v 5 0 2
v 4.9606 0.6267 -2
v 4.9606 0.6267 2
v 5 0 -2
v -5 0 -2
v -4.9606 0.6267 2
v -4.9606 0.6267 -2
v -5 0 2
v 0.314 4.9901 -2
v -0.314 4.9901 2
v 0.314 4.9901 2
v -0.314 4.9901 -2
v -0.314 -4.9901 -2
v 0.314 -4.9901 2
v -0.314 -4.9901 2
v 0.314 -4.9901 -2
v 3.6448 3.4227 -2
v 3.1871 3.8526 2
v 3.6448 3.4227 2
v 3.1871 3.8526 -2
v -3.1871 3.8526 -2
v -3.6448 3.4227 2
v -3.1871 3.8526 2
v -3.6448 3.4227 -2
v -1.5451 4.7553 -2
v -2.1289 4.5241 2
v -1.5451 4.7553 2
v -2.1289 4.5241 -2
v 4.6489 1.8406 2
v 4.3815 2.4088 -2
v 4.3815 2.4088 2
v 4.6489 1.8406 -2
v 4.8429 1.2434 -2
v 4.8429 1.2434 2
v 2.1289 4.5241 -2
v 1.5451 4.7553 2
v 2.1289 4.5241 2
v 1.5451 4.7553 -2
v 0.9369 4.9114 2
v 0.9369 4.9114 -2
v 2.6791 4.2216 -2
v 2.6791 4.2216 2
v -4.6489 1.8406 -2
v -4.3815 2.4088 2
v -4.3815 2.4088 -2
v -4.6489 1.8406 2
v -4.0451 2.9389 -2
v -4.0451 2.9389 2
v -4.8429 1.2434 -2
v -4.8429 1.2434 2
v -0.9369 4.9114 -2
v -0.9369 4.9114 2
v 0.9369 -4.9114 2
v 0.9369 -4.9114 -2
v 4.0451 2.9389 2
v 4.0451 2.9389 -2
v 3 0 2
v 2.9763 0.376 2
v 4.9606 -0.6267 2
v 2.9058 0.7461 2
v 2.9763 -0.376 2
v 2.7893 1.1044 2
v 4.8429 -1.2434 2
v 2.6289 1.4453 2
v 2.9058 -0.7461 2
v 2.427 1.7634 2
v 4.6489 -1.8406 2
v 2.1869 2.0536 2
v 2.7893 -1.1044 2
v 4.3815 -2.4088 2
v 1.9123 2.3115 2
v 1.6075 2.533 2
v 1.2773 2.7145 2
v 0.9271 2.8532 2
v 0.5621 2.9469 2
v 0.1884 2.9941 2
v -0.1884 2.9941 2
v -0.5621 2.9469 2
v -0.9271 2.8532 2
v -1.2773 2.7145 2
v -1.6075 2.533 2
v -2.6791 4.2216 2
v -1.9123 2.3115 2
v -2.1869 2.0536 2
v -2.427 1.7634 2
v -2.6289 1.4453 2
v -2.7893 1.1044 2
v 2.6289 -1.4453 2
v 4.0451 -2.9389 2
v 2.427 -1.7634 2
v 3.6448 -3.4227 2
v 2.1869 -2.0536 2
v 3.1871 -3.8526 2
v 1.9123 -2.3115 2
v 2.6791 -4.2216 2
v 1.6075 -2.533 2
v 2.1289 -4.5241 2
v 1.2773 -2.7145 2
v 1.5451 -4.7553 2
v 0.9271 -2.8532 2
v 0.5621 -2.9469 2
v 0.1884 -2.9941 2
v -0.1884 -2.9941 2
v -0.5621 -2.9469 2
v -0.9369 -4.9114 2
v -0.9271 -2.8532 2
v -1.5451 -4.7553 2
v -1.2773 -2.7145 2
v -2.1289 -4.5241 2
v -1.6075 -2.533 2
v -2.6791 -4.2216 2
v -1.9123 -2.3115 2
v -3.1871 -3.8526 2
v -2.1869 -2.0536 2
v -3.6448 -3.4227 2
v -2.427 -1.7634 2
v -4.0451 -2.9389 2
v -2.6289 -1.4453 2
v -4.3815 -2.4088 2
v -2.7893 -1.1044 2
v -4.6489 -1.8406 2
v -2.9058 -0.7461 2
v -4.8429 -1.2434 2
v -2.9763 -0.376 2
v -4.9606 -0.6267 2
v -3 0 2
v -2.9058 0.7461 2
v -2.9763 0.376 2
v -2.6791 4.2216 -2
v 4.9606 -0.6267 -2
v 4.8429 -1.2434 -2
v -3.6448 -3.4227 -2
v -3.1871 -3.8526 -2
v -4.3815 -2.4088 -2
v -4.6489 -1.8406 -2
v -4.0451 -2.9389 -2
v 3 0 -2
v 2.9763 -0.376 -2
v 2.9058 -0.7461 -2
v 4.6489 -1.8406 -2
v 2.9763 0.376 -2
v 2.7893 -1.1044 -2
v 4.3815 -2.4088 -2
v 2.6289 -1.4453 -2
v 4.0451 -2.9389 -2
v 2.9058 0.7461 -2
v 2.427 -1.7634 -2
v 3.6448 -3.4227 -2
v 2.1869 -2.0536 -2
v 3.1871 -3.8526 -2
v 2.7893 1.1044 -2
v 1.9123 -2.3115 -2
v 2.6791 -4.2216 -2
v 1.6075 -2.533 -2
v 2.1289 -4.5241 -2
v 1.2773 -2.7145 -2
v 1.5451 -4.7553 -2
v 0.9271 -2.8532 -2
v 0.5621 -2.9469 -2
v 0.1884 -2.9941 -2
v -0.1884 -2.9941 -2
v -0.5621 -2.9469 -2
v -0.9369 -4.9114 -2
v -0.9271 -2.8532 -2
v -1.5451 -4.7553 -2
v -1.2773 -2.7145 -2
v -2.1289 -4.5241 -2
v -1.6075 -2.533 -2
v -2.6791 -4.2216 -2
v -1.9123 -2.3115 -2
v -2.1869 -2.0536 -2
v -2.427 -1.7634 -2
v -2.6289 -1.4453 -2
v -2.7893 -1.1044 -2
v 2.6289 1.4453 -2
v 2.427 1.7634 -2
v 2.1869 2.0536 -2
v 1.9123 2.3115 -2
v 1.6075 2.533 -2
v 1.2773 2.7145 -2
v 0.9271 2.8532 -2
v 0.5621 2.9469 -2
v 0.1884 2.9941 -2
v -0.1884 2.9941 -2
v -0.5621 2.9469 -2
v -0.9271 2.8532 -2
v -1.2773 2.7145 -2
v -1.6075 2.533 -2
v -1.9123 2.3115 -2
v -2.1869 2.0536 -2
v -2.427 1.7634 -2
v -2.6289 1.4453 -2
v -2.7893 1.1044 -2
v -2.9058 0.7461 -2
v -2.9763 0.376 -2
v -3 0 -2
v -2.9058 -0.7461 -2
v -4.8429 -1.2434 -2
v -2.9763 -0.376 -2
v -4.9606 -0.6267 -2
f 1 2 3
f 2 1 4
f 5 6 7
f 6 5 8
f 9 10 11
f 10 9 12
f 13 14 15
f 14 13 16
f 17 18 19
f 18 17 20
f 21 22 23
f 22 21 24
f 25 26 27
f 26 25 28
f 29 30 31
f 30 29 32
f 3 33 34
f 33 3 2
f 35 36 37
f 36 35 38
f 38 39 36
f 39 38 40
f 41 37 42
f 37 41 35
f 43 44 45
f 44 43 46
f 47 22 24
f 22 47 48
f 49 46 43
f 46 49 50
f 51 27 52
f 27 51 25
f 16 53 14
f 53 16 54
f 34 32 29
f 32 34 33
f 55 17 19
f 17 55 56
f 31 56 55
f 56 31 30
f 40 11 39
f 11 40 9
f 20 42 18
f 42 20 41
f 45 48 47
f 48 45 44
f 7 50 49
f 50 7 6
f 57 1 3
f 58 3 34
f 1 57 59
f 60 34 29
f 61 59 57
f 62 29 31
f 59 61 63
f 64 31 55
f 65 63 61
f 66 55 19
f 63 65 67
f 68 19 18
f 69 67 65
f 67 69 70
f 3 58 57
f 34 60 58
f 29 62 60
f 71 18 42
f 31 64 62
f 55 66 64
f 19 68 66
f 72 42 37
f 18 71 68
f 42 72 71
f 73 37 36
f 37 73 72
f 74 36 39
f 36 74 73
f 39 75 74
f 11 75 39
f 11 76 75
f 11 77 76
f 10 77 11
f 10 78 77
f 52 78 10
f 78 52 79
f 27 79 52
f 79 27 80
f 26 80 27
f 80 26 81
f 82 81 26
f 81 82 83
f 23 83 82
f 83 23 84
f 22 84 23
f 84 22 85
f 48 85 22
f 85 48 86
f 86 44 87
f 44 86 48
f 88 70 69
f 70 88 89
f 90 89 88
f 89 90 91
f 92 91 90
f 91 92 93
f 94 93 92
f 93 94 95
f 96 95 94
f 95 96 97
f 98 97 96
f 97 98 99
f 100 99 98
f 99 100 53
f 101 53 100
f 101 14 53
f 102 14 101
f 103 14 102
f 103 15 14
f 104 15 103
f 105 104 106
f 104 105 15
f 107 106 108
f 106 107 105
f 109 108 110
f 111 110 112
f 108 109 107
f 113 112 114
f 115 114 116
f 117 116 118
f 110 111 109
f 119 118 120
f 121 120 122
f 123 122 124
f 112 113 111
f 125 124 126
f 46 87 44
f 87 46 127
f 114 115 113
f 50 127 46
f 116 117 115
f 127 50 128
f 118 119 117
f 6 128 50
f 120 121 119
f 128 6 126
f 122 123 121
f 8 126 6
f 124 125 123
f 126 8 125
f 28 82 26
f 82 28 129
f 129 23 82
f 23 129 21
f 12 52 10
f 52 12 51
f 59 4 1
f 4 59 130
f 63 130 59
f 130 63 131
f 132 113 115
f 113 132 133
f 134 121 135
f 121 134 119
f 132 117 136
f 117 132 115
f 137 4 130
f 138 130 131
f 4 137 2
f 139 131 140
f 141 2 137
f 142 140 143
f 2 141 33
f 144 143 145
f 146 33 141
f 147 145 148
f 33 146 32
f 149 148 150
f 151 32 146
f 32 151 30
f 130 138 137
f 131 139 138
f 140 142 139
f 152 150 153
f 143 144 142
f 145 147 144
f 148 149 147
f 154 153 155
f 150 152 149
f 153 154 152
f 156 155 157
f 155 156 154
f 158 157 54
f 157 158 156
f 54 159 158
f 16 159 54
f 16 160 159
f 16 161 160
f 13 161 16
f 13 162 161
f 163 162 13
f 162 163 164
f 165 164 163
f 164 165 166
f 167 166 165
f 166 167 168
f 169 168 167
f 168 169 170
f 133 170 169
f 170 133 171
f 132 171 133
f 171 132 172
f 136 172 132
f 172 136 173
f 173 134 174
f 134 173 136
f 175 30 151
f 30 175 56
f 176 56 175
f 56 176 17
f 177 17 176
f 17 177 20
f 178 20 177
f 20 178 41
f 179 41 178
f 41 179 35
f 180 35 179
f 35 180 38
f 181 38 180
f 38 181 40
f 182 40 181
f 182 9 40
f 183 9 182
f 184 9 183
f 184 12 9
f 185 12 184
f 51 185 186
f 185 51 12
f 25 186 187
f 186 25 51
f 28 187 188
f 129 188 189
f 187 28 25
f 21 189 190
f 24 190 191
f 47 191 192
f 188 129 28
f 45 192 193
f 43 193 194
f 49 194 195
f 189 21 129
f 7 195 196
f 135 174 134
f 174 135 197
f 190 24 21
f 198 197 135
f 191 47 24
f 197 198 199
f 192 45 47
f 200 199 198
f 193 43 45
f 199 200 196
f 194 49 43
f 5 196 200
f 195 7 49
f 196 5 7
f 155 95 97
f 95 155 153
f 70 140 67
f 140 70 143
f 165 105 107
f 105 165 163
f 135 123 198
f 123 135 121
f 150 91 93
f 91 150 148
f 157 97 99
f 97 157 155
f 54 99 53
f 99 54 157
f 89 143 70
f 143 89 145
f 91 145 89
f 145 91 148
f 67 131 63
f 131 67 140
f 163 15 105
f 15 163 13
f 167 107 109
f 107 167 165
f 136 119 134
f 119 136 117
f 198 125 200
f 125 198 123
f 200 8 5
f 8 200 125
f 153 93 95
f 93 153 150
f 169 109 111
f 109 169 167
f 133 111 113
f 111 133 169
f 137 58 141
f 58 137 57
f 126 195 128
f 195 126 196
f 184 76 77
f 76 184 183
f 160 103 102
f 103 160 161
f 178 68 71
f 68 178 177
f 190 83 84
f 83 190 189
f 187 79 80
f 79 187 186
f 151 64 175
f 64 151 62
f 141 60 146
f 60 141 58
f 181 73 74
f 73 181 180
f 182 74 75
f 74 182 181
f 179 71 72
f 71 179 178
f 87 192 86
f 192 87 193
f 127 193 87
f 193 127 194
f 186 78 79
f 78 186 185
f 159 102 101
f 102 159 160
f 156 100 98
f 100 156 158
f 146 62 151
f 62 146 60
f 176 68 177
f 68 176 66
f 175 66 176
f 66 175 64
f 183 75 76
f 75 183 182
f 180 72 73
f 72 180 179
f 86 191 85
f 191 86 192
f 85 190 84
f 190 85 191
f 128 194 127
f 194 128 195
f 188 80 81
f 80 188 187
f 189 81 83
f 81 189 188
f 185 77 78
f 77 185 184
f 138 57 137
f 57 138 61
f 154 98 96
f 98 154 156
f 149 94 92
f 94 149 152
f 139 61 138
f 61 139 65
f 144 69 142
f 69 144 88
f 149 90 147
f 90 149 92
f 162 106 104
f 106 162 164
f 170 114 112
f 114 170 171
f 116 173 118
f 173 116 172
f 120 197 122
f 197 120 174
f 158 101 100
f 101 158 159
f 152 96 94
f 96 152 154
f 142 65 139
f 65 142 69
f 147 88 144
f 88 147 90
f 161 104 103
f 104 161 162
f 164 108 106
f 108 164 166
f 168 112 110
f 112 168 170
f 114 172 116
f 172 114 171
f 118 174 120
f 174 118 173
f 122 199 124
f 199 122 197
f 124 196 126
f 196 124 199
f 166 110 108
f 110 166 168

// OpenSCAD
$fn = 50;


difference() {
	union() {
		translate(v = [0, 0, -2.0000000000]) {
			cylinder(h = 4, r = 5.0000000000);
		}
	}
	union() {
		translate(v = [0, 0, -100.0000000000]) {
			cylinder(h = 200, r = 3);
		}
	}
}
